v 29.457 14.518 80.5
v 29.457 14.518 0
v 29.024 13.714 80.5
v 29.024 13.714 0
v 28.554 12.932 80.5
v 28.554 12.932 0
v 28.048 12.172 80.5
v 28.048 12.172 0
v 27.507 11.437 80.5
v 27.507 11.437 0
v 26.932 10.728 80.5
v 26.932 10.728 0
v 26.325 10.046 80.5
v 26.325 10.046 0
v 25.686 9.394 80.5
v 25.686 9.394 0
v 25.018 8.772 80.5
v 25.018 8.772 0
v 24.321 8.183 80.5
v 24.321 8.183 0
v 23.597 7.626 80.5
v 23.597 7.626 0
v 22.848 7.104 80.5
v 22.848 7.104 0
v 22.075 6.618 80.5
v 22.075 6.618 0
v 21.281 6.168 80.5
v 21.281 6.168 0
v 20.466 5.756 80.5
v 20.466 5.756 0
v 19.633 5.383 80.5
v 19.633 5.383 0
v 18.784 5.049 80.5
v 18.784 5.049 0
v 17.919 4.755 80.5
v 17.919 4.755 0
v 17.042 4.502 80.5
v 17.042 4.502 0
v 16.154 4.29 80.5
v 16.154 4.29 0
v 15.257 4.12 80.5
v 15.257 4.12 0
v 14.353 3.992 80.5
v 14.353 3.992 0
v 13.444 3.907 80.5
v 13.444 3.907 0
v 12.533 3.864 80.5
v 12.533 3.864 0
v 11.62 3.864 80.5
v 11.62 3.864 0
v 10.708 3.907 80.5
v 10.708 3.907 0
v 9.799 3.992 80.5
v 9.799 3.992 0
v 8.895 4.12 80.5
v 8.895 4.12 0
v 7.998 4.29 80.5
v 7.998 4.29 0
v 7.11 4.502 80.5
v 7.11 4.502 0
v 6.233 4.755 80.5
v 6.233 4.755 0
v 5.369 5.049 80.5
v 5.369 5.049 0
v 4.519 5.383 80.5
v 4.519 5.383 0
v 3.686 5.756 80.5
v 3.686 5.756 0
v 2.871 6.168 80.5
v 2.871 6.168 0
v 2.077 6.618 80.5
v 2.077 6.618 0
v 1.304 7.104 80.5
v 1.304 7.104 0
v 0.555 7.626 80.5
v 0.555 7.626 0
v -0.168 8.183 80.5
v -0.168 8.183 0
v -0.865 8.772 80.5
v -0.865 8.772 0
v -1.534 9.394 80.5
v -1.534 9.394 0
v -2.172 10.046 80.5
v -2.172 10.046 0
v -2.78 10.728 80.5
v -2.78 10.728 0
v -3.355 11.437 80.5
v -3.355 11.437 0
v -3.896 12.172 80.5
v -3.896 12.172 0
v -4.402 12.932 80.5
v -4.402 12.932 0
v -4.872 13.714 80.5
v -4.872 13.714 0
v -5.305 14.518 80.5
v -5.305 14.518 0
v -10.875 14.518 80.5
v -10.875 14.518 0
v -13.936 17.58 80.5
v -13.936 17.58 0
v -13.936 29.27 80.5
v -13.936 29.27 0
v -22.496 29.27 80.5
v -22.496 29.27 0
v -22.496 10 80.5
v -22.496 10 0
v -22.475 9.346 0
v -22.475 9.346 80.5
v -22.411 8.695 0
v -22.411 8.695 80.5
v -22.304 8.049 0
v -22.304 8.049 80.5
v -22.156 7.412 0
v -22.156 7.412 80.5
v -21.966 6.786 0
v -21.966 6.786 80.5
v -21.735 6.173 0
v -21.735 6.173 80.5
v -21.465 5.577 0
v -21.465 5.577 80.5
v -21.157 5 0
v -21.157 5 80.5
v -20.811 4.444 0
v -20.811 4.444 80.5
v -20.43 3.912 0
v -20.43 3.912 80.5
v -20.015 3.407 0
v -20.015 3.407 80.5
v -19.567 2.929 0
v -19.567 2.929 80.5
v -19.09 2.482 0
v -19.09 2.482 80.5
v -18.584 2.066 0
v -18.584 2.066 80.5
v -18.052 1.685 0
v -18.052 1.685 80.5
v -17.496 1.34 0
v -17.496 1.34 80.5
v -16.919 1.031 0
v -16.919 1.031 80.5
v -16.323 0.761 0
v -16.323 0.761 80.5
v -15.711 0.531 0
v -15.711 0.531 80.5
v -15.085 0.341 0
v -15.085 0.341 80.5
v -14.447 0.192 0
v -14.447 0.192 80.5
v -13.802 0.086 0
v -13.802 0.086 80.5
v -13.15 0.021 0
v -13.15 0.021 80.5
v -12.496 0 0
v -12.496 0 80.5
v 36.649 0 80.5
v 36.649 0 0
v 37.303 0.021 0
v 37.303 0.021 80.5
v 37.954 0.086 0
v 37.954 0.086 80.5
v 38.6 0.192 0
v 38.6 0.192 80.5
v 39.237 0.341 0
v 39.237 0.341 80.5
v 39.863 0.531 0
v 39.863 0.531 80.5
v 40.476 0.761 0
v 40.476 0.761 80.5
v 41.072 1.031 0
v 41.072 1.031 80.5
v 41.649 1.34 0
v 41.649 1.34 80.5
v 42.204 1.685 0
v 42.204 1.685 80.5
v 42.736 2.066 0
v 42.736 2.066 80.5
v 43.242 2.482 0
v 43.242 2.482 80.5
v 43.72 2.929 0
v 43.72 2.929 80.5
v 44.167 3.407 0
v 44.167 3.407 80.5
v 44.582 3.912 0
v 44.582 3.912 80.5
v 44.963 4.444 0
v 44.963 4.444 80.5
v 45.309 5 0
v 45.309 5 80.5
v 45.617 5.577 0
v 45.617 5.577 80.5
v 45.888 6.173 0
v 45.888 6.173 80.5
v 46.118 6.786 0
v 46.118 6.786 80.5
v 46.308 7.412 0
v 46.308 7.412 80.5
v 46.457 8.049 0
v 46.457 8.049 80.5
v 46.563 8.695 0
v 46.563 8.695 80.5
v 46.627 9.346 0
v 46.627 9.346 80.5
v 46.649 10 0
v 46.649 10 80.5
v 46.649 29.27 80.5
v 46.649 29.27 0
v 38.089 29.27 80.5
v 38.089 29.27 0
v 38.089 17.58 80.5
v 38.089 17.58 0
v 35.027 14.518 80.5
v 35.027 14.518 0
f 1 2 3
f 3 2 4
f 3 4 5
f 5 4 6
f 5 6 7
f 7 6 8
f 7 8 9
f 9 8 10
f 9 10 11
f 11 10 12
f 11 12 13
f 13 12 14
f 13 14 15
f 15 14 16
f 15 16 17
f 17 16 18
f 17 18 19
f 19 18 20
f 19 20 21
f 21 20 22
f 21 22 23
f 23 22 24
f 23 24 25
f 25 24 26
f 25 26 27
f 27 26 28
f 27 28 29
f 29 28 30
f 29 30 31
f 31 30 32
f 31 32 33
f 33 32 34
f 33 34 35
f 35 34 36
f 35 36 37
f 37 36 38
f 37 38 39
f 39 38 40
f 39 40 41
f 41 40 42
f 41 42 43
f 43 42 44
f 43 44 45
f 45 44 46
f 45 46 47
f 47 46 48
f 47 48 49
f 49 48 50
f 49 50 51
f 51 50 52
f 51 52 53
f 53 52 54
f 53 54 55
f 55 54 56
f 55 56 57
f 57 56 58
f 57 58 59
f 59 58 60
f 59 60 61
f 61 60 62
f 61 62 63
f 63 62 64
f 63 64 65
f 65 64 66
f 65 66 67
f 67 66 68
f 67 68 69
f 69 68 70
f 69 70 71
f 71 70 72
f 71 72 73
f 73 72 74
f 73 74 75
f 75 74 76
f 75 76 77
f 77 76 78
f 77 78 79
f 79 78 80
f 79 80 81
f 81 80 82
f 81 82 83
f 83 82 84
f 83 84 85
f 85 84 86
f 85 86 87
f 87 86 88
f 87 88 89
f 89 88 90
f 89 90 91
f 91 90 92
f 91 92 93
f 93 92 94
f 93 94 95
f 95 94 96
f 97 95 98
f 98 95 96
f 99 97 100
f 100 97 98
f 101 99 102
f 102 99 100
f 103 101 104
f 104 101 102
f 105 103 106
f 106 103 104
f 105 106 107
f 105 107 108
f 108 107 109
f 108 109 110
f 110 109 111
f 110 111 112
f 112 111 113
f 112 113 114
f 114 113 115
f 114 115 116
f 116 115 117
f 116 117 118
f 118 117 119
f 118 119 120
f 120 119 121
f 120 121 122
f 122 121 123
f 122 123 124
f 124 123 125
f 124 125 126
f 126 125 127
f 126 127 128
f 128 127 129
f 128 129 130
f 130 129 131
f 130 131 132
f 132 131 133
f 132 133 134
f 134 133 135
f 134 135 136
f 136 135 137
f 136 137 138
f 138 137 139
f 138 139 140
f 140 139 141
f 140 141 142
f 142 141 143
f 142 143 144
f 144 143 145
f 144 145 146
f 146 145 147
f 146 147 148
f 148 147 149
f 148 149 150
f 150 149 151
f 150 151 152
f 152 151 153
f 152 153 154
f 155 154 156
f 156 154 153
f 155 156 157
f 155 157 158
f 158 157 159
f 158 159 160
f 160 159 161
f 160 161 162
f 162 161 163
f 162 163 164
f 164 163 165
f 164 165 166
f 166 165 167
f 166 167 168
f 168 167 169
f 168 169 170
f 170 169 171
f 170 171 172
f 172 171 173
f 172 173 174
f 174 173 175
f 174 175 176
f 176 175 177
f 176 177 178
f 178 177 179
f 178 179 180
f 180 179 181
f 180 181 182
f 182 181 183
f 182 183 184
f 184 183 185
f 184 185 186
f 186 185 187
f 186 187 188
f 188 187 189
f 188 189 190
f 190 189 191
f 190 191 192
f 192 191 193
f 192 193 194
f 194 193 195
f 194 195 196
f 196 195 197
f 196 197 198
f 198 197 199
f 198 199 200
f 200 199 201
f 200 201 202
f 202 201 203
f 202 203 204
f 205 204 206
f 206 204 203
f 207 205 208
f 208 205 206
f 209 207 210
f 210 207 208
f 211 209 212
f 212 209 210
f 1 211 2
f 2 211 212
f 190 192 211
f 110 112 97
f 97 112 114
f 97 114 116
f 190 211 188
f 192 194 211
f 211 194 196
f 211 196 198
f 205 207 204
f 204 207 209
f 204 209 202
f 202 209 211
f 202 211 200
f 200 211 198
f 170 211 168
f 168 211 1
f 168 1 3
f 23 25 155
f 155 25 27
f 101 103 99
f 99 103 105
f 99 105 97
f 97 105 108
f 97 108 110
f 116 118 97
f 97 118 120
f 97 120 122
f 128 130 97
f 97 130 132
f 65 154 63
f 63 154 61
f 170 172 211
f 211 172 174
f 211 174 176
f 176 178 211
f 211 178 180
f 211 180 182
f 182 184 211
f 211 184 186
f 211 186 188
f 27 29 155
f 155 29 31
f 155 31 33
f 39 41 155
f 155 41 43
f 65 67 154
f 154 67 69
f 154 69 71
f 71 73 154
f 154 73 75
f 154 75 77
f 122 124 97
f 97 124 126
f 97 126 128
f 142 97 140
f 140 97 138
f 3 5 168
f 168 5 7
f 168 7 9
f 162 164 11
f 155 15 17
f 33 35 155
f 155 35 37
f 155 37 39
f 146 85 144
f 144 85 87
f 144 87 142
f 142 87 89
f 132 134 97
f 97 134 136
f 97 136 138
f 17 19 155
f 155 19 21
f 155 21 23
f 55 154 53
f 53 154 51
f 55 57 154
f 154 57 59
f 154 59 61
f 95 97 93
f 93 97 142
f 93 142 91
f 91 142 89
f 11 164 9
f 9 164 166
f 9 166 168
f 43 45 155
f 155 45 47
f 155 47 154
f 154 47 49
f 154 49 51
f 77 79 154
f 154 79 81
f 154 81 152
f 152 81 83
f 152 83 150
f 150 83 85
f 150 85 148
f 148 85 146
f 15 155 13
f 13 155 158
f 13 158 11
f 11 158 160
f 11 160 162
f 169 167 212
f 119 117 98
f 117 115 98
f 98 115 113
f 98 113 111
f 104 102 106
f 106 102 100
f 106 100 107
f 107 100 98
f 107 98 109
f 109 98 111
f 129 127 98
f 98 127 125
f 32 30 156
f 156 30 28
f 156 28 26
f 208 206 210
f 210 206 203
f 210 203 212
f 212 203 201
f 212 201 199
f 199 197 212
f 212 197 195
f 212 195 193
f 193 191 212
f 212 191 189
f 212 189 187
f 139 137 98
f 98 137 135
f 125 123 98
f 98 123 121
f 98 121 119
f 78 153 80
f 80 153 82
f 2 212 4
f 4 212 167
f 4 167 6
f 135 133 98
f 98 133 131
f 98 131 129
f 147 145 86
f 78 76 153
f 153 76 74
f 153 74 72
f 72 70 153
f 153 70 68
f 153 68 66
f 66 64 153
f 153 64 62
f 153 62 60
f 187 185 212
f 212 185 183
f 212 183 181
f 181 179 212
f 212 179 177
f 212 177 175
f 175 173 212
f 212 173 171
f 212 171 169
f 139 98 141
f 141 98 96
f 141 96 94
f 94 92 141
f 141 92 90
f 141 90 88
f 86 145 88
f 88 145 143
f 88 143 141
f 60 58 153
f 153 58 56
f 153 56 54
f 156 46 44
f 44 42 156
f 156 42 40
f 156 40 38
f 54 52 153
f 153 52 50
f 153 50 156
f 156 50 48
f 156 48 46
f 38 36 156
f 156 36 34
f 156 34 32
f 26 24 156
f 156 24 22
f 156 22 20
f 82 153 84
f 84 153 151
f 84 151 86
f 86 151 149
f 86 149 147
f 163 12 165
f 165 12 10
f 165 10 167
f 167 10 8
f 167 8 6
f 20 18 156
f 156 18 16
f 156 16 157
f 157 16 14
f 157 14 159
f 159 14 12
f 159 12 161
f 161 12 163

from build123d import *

# Parameters (mm, degrees)
BOSS_EXTRUDE1_DEPTH = 80.5


with BuildPart() as part:
    # Sketch1 → Boss-Extrude1 (new body)
    with BuildSketch(Plane.XY):
        with BuildLine():
            Line((-22.496419286, 29.27), (-22.496419286, 10))
            ThreePointArc((-22.496419286, 10), (-19.567487097, 2.928932188), (-12.496419286, 0))
            Line((-12.496419286, 0), (36.648732275, 0))
            ThreePointArc((36.648732275, 0), (43.719800087, 2.928932188), (46.648732275, 10))
            Line((46.648732275, 10), (46.648732275, 29.27))
            Line((46.648732275, 29.27), (38.088732275, 29.27))
            Line((38.088732275, 29.27), (38.088732275, 17.58))
            Line((38.088732275, 17.58), (35.026959912, 14.518227637))
            Line((35.026959912, 14.518227637), (29.456959912, 14.518227637))
            ThreePointArc((29.456959912, 14.518227637), (12.076156495, 3.858910448), (-5.304646923, 14.518227637))
            Line((-5.304646923, 14.518227637), (-10.874646923, 14.518227637))
            Line((-10.874646923, 14.518227637), (-13.936419286, 17.58))
            Line((-13.936419286, 17.58), (-13.936419286, 29.27))
            Line((-13.936419286, 29.27), (-22.496419286, 29.27))
        make_face()
    extrude(amount=BOSS_EXTRUDE1_DEPTH)


solid = part.part
